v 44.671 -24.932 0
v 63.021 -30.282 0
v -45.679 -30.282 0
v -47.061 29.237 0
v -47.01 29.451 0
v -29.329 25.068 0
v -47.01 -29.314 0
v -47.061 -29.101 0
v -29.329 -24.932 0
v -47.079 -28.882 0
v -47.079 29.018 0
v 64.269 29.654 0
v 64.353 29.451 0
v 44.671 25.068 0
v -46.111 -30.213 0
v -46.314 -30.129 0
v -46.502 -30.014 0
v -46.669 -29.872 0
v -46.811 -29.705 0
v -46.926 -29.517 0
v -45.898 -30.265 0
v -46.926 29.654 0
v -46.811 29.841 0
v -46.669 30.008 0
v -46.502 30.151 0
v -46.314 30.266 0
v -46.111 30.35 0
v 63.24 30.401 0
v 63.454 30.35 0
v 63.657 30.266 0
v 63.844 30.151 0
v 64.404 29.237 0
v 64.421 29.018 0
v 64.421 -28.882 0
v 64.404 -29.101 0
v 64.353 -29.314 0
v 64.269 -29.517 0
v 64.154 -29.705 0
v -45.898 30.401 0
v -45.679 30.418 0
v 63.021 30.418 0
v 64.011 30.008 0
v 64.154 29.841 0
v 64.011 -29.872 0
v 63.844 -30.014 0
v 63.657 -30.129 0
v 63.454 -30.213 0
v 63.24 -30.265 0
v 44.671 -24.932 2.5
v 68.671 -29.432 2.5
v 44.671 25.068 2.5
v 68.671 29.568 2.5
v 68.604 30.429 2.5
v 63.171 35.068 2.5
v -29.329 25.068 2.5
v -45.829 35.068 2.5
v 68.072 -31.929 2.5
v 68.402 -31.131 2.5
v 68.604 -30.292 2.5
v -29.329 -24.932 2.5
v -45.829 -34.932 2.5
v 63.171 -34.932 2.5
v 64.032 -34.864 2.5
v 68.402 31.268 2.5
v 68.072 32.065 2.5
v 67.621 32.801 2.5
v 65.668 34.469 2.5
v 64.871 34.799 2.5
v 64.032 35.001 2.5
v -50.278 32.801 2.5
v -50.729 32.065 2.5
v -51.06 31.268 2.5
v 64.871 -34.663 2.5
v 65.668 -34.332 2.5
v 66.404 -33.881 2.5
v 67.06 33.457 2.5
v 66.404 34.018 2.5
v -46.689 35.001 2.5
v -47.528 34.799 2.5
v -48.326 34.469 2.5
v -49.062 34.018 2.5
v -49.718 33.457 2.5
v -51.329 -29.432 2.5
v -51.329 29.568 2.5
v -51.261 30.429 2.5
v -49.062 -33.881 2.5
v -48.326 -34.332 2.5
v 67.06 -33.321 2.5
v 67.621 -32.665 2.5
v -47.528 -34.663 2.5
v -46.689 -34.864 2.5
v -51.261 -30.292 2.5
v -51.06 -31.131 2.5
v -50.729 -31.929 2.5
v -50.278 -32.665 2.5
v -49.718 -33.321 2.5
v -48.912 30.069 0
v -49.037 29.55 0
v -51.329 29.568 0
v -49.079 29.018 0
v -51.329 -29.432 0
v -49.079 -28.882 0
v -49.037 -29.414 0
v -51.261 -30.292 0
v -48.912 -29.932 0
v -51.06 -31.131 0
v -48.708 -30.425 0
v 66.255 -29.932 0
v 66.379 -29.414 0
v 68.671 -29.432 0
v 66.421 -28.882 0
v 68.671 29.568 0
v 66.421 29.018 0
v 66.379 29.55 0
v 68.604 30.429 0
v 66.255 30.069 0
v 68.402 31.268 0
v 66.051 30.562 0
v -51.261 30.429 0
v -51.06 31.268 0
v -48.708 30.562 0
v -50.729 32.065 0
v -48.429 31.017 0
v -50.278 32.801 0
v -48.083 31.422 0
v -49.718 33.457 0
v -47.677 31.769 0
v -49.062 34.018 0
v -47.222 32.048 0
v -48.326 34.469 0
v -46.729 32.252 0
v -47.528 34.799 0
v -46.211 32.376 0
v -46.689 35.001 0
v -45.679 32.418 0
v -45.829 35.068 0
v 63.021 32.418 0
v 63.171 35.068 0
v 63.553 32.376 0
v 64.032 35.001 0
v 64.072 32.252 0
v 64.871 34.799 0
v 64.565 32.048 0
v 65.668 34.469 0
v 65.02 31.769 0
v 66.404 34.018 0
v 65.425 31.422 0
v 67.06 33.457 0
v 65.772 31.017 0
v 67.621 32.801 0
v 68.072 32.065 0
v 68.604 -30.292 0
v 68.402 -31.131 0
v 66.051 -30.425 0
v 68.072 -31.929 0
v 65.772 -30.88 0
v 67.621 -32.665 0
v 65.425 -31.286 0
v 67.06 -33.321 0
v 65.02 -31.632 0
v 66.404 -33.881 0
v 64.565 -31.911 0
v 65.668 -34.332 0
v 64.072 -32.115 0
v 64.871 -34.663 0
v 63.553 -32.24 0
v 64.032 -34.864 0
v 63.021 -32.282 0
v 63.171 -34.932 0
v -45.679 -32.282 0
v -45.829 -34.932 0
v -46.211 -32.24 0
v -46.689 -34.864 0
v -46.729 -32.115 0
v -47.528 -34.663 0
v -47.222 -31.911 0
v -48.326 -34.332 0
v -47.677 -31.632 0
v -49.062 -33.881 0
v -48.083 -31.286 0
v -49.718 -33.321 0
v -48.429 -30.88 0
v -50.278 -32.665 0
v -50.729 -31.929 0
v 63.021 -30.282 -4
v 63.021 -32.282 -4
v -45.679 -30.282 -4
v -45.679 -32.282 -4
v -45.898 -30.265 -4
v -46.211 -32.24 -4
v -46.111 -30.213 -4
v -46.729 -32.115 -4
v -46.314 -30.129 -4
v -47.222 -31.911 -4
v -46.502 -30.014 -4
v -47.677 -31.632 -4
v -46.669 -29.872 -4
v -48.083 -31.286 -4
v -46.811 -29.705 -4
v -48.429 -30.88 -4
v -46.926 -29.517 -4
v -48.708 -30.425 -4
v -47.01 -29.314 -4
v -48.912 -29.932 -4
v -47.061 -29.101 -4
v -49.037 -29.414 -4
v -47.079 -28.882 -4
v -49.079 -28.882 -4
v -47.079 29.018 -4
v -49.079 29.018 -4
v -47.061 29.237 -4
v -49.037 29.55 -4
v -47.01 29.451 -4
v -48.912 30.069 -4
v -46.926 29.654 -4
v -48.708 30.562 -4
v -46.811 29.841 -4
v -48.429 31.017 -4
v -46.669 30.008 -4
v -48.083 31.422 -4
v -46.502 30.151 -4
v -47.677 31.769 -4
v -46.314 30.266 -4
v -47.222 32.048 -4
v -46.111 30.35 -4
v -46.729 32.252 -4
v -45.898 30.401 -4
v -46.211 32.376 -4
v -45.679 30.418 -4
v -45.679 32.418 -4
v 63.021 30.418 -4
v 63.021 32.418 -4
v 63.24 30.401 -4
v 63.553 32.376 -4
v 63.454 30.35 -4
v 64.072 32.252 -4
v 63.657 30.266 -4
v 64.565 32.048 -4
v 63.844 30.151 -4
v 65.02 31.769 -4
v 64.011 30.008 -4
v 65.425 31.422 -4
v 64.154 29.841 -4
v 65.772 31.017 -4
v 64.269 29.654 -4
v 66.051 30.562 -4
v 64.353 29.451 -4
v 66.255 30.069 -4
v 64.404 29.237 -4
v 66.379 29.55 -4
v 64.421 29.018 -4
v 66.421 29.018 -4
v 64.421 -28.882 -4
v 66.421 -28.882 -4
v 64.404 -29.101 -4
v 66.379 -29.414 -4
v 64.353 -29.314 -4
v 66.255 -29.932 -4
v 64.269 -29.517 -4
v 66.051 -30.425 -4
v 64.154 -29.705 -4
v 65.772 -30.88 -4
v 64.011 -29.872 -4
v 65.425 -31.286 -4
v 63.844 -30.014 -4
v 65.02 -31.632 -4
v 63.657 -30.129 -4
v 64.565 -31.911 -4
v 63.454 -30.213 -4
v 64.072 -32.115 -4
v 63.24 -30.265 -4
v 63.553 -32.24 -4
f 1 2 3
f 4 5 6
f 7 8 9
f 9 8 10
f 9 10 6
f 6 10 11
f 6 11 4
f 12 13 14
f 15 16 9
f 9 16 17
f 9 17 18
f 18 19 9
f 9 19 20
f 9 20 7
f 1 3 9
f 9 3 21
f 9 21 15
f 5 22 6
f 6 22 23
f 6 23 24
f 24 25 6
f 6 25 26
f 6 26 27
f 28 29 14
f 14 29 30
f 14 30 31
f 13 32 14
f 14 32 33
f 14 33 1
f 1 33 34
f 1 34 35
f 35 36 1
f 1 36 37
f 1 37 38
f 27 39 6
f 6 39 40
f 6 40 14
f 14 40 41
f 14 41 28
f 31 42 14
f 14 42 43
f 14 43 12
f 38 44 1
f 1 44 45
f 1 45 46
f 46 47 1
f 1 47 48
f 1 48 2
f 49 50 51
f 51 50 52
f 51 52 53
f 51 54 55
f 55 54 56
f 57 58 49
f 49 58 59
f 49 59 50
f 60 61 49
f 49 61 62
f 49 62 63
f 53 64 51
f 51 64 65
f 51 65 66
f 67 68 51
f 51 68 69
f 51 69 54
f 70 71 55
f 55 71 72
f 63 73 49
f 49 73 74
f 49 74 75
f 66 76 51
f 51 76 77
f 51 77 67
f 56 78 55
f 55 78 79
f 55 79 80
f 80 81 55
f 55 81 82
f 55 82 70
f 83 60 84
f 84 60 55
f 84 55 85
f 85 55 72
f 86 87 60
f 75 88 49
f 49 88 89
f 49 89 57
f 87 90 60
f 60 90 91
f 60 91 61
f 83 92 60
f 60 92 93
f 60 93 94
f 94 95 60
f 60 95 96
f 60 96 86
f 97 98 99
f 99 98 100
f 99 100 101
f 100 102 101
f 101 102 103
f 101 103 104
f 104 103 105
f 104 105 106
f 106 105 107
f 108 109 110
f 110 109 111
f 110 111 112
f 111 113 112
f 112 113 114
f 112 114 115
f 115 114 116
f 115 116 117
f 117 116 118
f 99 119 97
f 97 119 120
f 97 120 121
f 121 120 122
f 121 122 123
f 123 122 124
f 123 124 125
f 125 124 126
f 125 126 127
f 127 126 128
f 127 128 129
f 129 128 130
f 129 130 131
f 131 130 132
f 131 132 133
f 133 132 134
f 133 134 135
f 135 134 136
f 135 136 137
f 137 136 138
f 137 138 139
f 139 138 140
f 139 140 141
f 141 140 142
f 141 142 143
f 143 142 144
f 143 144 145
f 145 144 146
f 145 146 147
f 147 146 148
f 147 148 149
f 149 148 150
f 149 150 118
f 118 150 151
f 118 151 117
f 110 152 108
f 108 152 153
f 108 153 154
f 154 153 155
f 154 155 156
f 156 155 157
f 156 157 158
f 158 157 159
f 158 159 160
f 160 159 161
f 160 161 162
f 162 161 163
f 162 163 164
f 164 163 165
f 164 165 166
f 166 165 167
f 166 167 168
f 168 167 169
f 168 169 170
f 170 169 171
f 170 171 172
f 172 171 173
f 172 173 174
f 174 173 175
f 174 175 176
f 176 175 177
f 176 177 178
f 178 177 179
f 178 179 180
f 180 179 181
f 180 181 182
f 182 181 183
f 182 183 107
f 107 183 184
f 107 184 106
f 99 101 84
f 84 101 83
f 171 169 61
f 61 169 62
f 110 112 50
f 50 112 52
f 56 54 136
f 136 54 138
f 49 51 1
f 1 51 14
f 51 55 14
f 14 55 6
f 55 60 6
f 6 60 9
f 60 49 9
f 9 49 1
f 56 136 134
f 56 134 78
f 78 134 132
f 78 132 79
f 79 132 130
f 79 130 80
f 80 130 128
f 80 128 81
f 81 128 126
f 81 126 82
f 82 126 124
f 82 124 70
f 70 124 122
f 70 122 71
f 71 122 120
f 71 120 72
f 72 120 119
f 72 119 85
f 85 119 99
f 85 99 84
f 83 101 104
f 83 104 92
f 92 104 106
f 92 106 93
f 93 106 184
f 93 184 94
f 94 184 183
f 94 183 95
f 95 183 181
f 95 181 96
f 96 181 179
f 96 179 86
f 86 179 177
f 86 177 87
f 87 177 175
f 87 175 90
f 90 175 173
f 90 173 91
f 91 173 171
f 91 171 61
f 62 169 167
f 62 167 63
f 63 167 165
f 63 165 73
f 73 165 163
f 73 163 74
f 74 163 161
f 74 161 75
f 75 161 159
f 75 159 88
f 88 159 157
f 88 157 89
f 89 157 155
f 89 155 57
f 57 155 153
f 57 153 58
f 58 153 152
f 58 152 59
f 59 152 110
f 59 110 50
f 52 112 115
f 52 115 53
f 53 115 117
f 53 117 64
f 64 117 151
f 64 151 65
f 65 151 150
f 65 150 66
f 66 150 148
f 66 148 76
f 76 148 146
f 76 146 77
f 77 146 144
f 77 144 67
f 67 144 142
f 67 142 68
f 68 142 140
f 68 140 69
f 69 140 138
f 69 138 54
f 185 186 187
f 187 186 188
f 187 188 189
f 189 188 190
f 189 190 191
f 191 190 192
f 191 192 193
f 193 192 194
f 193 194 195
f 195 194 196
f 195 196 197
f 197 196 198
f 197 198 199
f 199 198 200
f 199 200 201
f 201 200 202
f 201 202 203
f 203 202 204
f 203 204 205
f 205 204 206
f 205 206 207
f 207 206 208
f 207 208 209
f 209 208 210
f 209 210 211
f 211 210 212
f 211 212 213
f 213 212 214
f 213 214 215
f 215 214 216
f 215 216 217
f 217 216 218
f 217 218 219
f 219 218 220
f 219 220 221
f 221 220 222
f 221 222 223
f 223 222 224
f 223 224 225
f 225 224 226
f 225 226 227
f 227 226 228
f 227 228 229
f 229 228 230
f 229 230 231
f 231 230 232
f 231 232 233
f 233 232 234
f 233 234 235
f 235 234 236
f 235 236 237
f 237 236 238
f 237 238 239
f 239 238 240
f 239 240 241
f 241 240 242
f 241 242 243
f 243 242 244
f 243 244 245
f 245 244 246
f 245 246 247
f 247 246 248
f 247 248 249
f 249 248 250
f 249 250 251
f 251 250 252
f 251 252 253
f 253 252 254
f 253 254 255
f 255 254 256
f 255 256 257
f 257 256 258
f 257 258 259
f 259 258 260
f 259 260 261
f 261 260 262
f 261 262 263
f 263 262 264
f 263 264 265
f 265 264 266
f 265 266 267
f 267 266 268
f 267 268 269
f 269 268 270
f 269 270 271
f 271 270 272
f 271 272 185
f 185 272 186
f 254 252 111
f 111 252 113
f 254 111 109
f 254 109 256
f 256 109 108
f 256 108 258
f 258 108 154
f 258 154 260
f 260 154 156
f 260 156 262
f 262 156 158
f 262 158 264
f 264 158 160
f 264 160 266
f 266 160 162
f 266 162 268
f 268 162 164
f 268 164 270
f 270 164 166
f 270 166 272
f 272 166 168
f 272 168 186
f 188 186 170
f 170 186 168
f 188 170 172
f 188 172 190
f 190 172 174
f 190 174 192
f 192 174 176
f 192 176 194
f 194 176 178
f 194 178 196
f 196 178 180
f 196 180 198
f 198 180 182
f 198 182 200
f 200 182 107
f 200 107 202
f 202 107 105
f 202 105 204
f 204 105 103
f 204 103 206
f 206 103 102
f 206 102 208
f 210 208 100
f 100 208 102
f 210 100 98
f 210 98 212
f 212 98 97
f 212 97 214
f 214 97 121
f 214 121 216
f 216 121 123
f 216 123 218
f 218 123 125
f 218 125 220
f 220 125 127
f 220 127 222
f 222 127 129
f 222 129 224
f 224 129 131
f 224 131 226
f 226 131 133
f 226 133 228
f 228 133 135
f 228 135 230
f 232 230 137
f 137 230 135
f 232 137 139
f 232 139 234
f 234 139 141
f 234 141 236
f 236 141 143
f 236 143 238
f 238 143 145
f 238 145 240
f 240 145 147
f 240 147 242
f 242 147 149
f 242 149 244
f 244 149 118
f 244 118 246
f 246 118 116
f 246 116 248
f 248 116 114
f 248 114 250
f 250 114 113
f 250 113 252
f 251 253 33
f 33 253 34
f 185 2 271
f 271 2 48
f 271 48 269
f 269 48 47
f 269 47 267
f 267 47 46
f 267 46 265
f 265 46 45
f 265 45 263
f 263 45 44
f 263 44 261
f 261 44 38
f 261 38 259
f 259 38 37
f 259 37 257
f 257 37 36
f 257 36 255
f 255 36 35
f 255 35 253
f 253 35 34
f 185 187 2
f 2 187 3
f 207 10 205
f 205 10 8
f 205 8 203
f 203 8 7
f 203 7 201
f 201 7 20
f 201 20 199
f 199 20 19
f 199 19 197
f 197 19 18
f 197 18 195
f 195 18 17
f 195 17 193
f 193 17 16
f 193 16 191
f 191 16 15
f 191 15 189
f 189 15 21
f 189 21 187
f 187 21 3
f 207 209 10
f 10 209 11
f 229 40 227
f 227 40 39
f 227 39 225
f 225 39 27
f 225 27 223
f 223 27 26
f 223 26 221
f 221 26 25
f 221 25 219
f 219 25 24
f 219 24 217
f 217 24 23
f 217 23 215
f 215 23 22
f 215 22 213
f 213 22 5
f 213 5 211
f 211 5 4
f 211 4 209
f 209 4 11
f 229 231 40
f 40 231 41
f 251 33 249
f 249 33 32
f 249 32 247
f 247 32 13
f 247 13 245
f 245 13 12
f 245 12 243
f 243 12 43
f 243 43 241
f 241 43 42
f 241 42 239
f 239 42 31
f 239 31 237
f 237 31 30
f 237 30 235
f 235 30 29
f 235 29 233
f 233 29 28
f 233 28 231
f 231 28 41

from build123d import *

# Parameters (mm, degrees)
SKETCH_1_W        = 120
SKETCH_1_H        = 70
SKETCH_1_W_2      = 74
SKETCH_1_H_2      = 50
EXTRUDE_1_DEPTH   = 2.5
FILLET_1_R        = 5.5
EXTRUDE_1_2_DEPTH = 4


with BuildPart() as part:
    # 草图1 → Extrude 1 (new body)
    with BuildSketch(Plane.XY):
        with Locations((8.671272412, 0.068259877)):
            Rectangle(SKETCH_1_W, SKETCH_1_H)
        with Locations((7.671272412, 0.068259877)):
            Rectangle(SKETCH_1_W_2, SKETCH_1_H_2, mode=Mode.SUBTRACT)
    extrude(amount=EXTRUDE_1_DEPTH)

    # 圆角1
    fillet_1_edges = [part.edges().sort_by_distance(p)[0] for p in [
        (-51.328727588, 35.068259877, 1.25),
        (68.671272412, 35.068259877, 1.25),
        (68.671272412, -34.931740123, 1.25),
        (-51.328727588, -34.931740123, 1.25),
    ]]
    fillet(fillet_1_edges, radius=FILLET_1_R)

    # 草图2 → Extrude 1 2 (add)
    with BuildSketch(Plane(origin=(0, 0, 0), x_dir=(-1, 0, 0), z_dir=(0, 0, -1))):
        with BuildLine():
            Line((-63.021272412, 32.418259877), (45.678727588, 32.418259877))
            ThreePointArc((45.678727588, 32.418259877), (48.082890644, 31.422422933), (49.078727588, 29.018259877))
            Line((49.078727588, 29.018259877), (49.078727588, -28.881740123))
            ThreePointArc((49.078727588, -28.881740123), (48.082890644, -31.285903179), (45.678727588, -32.281740123))
            Line((45.678727588, -32.281740123), (-63.021272412, -32.281740123))
            ThreePointArc((-63.021272412, -32.281740123), (-65.425435468, -31.285903179), (-66.421272412, -28.881740123))
            Line((-66.421272412, -28.881740123), (-66.421272412, 29.018259877))
            ThreePointArc((-66.421272412, 29.018259877), (-65.425435468, 31.422422933), (-63.021272412, 32.418259877))
        make_face()
        with BuildLine():
            Line((-63.021272412, 30.418259877), (45.678727588, 30.418259877))
            ThreePointArc((45.678727588, 30.418259877), (46.668677082, 30.008209371), (47.078727588, 29.018259877))
            Line((47.078727588, 29.018259877), (47.078727588, -28.881740123))
            ThreePointArc((47.078727588, -28.881740123), (46.668677082, -29.871689616), (45.678727588, -30.281740123))
            Line((45.678727588, -30.281740123), (-63.021272412, -30.281740123))
            ThreePointArc((-63.021272412, -30.281740123), (-64.011221906, -29.871689616), (-64.421272412, -28.881740123))
            Line((-64.421272412, -28.881740123), (-64.421272412, 29.018259877))
            ThreePointArc((-64.421272412, 29.018259877), (-64.011221906, 30.008209371), (-63.021272412, 30.418259877))
        make_face(mode=Mode.SUBTRACT)
    extrude(amount=EXTRUDE_1_2_DEPTH)


solid = part.part
